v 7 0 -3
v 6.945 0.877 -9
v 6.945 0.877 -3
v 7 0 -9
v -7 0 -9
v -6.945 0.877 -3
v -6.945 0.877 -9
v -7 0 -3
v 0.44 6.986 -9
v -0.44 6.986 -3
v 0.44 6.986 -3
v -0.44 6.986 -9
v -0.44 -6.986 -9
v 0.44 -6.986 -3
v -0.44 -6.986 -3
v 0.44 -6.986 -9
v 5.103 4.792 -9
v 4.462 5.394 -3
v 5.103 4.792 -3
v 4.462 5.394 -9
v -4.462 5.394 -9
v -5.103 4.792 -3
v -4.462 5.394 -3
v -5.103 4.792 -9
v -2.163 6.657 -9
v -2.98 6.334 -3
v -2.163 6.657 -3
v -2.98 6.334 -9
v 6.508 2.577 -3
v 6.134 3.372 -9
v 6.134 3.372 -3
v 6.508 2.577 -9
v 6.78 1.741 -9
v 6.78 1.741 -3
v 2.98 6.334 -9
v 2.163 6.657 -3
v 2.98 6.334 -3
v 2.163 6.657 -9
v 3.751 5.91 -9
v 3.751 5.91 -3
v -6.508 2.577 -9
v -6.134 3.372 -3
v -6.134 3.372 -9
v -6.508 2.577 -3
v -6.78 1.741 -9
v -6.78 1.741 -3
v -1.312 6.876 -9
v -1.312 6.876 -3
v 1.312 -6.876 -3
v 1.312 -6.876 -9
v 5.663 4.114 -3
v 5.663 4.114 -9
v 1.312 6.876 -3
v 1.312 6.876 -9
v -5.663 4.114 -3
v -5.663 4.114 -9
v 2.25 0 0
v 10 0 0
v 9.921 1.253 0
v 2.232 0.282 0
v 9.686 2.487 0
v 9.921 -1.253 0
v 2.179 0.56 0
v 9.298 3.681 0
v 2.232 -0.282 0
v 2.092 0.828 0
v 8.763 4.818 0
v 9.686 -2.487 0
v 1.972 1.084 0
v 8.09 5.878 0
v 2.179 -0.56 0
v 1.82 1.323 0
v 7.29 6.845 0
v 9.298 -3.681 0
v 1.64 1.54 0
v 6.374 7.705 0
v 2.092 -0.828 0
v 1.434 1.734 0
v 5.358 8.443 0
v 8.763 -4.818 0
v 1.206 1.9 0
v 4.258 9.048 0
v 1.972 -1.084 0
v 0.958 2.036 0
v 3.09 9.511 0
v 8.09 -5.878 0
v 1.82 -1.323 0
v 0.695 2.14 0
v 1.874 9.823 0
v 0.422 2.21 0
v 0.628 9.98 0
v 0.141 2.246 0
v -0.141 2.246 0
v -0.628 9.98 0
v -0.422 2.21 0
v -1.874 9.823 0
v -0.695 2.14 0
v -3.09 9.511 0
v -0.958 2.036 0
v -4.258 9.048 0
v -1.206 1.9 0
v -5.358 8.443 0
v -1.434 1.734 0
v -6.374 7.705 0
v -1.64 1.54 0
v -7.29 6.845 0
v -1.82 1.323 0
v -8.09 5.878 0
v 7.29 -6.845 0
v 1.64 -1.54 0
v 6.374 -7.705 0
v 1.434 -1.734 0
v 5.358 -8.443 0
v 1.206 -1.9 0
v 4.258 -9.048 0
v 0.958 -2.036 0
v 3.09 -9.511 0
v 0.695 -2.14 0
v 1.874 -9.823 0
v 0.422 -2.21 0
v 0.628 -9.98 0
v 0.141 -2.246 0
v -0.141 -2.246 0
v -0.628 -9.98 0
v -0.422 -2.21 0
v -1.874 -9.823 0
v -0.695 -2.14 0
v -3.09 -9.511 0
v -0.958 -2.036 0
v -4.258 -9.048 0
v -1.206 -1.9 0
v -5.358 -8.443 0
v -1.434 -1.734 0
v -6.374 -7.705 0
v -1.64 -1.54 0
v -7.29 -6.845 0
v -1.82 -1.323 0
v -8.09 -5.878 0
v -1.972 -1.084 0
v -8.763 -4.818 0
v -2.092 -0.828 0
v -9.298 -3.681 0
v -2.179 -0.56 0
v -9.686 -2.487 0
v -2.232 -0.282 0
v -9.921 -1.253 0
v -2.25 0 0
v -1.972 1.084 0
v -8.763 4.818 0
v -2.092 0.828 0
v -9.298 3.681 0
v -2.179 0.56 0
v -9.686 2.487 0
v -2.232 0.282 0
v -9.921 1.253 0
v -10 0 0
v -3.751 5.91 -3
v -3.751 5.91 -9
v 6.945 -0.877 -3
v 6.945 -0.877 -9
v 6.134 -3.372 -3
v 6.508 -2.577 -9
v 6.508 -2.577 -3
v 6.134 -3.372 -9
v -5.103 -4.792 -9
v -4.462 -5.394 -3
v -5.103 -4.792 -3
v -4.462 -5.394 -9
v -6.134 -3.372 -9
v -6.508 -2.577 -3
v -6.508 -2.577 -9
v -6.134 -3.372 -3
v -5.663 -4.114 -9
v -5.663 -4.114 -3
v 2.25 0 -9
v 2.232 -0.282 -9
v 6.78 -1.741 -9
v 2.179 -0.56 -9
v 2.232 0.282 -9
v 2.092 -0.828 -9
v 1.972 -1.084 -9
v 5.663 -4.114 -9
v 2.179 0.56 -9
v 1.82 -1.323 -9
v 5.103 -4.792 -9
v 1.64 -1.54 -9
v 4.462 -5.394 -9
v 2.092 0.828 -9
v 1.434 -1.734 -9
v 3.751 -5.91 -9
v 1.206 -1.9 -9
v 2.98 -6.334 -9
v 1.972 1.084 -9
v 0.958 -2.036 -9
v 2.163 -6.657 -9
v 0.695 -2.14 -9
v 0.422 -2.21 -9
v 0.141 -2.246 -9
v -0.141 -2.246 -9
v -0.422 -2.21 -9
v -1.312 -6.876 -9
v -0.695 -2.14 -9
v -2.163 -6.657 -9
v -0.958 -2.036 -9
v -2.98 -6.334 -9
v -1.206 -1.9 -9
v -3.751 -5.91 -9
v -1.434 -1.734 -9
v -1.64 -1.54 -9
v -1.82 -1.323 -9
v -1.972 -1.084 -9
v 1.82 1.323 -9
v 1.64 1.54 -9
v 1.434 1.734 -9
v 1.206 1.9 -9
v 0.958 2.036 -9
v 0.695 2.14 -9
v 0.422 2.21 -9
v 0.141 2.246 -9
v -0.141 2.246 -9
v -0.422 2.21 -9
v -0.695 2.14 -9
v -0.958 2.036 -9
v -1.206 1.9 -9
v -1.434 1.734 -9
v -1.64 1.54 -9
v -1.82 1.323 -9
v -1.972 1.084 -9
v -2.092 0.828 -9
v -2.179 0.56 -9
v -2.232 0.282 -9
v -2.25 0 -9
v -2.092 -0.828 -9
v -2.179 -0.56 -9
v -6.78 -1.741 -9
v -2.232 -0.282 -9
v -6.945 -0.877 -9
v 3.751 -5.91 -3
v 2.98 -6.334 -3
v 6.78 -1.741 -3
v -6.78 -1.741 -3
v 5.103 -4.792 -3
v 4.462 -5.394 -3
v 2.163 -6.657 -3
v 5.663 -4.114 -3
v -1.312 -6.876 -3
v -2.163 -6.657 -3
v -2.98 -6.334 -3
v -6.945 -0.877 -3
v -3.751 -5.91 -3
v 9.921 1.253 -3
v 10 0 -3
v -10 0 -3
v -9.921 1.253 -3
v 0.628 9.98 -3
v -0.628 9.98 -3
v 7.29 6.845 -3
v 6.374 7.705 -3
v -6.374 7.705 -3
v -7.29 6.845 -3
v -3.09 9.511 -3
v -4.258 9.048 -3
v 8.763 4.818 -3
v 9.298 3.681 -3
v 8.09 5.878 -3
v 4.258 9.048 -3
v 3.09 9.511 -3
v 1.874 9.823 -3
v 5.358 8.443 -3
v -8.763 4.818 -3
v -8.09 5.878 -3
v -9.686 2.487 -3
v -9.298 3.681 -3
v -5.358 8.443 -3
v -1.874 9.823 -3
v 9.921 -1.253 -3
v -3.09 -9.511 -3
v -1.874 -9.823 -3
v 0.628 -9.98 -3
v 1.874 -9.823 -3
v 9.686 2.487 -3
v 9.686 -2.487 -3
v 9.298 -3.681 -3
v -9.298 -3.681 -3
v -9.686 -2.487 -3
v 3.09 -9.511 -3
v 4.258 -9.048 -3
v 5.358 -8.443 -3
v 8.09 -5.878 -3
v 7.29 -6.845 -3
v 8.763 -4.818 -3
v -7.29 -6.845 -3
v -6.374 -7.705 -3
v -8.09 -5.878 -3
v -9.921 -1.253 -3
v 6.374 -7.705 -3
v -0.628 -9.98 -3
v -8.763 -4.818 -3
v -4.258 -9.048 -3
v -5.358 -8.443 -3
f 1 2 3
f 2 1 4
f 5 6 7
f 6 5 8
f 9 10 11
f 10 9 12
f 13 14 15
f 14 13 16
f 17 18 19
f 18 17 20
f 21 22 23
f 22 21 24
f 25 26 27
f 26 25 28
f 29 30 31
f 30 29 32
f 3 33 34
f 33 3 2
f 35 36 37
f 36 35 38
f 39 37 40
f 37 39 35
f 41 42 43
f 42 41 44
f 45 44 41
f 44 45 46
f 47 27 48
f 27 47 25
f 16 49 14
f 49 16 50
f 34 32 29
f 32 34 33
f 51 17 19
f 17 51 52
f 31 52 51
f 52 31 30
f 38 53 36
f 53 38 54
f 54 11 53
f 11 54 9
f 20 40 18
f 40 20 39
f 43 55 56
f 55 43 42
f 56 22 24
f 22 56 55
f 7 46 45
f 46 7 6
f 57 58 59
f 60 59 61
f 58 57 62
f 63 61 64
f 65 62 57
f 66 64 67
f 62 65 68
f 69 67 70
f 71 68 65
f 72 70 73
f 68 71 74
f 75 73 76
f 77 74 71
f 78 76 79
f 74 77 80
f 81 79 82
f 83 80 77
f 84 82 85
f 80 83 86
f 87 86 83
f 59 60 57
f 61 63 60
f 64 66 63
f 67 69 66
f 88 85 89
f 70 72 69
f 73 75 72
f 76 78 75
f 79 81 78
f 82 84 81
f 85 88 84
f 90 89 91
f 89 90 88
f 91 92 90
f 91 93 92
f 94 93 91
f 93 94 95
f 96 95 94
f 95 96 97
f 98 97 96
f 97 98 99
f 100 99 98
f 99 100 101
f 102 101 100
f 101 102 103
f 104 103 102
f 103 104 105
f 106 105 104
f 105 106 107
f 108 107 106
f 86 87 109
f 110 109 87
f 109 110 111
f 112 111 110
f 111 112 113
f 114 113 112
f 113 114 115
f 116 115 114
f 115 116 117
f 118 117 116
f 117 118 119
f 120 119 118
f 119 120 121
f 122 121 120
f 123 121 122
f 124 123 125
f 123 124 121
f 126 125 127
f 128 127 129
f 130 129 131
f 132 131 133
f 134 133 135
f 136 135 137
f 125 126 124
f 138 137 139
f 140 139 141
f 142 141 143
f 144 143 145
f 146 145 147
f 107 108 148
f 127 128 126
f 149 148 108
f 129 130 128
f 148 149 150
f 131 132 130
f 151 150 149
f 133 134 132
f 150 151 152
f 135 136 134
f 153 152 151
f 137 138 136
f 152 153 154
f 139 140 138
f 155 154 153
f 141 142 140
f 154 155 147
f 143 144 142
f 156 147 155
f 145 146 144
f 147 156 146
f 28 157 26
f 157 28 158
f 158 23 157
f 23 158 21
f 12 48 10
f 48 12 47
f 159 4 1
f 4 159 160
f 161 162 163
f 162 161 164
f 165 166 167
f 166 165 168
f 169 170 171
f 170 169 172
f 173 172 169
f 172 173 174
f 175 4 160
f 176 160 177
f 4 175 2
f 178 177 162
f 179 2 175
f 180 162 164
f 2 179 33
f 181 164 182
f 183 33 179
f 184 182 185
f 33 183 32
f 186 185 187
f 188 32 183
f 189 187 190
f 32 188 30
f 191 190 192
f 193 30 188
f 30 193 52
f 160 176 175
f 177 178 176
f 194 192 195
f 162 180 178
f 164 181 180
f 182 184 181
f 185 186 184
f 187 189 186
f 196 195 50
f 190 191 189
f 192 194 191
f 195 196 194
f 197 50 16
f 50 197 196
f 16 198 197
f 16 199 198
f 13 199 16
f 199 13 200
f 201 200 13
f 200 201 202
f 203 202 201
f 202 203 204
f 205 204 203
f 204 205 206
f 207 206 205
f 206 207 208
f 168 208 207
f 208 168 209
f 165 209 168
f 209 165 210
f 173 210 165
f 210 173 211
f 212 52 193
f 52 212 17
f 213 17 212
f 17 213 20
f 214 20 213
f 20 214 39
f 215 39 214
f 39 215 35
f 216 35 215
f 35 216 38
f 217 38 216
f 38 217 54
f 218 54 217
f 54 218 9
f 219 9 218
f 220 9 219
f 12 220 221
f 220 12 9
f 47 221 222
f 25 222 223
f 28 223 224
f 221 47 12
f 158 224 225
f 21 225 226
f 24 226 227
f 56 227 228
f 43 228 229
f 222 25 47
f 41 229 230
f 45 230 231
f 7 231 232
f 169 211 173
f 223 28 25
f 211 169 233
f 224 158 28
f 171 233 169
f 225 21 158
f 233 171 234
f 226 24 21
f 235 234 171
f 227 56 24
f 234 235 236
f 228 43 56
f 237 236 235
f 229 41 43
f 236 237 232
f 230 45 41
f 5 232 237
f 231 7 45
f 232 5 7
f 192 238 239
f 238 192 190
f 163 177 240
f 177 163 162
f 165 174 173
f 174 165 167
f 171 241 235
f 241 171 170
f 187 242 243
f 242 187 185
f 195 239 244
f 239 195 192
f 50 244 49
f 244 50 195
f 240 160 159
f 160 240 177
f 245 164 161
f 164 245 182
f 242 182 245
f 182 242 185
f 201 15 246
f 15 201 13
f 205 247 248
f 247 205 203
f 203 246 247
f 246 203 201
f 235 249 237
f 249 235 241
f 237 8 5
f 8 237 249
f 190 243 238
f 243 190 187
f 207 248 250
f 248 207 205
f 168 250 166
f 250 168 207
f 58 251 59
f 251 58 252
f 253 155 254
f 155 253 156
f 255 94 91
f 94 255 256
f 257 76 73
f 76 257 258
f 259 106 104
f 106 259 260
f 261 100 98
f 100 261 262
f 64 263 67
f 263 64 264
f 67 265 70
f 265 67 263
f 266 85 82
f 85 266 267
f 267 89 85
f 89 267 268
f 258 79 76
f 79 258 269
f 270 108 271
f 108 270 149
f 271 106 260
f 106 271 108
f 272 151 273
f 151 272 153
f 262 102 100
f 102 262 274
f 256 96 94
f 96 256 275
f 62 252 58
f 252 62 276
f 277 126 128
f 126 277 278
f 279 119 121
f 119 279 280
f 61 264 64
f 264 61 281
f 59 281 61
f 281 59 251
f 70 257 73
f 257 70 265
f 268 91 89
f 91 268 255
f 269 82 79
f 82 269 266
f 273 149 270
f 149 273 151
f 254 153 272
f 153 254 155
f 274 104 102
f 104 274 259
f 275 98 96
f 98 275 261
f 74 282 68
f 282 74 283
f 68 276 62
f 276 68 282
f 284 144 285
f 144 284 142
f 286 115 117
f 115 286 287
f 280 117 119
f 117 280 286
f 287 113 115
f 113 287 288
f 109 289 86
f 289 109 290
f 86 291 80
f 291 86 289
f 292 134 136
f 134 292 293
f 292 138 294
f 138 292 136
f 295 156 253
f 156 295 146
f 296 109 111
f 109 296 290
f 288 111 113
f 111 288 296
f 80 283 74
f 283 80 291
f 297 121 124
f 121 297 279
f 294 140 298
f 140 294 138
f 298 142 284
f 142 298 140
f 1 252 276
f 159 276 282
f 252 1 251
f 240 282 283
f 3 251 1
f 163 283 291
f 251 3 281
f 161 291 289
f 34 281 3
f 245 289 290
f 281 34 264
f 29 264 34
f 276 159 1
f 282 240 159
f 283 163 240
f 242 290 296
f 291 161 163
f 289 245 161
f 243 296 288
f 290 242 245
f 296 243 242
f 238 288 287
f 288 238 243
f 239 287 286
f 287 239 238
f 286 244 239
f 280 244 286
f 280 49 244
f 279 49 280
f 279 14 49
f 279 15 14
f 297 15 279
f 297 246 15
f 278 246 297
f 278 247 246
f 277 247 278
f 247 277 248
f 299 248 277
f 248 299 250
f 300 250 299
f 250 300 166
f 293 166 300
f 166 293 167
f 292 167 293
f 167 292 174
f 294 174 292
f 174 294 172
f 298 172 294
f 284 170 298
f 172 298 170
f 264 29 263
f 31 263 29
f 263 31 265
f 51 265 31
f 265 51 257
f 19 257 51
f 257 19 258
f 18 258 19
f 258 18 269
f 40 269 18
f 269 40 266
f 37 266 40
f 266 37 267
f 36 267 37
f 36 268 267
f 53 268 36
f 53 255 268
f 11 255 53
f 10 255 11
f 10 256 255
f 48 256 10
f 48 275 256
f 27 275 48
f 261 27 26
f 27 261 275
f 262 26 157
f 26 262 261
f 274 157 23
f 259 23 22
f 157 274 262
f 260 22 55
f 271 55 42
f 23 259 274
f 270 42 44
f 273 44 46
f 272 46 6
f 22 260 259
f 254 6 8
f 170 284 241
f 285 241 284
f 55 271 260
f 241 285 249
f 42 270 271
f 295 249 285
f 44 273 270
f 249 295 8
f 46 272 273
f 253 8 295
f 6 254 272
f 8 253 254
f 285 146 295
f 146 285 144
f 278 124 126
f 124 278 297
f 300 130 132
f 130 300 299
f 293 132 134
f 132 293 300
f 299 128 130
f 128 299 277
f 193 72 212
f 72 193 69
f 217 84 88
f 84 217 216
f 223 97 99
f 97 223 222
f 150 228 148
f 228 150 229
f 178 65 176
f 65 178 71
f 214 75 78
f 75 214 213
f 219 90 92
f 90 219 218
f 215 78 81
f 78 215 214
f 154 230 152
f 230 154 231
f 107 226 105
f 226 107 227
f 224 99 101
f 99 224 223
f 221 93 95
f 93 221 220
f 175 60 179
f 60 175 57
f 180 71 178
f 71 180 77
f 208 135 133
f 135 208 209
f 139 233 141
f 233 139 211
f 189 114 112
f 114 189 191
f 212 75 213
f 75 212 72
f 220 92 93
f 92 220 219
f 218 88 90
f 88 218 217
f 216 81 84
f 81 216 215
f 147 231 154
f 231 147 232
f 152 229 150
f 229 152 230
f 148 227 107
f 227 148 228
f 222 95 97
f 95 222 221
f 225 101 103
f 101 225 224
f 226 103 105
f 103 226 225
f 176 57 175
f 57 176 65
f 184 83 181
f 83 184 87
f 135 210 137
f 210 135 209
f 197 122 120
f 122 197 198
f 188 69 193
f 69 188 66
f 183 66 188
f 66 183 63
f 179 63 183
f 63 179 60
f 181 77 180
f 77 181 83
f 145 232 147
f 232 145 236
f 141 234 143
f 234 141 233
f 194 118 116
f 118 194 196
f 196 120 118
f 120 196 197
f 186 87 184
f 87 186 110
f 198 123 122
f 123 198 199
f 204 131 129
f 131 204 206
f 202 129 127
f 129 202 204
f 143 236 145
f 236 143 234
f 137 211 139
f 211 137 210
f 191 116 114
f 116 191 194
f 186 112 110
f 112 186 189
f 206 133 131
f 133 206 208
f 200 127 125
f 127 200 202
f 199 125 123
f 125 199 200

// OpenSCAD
$fn = 50;


difference() {
	union() {
		translate(v = [0, 0, -9.0000000000]) {
			cylinder(h = 9, r = 7.0000000000);
		}
		translate(v = [0, 0, -3.0000000000]) {
			cylinder(h = 3, r = 10.0000000000);
		}
	}
	union() {
		#translate(v = [0, 0, -9]) {
			cylinder(h = 9, r = 2.2500000000);
		}
	}
}
